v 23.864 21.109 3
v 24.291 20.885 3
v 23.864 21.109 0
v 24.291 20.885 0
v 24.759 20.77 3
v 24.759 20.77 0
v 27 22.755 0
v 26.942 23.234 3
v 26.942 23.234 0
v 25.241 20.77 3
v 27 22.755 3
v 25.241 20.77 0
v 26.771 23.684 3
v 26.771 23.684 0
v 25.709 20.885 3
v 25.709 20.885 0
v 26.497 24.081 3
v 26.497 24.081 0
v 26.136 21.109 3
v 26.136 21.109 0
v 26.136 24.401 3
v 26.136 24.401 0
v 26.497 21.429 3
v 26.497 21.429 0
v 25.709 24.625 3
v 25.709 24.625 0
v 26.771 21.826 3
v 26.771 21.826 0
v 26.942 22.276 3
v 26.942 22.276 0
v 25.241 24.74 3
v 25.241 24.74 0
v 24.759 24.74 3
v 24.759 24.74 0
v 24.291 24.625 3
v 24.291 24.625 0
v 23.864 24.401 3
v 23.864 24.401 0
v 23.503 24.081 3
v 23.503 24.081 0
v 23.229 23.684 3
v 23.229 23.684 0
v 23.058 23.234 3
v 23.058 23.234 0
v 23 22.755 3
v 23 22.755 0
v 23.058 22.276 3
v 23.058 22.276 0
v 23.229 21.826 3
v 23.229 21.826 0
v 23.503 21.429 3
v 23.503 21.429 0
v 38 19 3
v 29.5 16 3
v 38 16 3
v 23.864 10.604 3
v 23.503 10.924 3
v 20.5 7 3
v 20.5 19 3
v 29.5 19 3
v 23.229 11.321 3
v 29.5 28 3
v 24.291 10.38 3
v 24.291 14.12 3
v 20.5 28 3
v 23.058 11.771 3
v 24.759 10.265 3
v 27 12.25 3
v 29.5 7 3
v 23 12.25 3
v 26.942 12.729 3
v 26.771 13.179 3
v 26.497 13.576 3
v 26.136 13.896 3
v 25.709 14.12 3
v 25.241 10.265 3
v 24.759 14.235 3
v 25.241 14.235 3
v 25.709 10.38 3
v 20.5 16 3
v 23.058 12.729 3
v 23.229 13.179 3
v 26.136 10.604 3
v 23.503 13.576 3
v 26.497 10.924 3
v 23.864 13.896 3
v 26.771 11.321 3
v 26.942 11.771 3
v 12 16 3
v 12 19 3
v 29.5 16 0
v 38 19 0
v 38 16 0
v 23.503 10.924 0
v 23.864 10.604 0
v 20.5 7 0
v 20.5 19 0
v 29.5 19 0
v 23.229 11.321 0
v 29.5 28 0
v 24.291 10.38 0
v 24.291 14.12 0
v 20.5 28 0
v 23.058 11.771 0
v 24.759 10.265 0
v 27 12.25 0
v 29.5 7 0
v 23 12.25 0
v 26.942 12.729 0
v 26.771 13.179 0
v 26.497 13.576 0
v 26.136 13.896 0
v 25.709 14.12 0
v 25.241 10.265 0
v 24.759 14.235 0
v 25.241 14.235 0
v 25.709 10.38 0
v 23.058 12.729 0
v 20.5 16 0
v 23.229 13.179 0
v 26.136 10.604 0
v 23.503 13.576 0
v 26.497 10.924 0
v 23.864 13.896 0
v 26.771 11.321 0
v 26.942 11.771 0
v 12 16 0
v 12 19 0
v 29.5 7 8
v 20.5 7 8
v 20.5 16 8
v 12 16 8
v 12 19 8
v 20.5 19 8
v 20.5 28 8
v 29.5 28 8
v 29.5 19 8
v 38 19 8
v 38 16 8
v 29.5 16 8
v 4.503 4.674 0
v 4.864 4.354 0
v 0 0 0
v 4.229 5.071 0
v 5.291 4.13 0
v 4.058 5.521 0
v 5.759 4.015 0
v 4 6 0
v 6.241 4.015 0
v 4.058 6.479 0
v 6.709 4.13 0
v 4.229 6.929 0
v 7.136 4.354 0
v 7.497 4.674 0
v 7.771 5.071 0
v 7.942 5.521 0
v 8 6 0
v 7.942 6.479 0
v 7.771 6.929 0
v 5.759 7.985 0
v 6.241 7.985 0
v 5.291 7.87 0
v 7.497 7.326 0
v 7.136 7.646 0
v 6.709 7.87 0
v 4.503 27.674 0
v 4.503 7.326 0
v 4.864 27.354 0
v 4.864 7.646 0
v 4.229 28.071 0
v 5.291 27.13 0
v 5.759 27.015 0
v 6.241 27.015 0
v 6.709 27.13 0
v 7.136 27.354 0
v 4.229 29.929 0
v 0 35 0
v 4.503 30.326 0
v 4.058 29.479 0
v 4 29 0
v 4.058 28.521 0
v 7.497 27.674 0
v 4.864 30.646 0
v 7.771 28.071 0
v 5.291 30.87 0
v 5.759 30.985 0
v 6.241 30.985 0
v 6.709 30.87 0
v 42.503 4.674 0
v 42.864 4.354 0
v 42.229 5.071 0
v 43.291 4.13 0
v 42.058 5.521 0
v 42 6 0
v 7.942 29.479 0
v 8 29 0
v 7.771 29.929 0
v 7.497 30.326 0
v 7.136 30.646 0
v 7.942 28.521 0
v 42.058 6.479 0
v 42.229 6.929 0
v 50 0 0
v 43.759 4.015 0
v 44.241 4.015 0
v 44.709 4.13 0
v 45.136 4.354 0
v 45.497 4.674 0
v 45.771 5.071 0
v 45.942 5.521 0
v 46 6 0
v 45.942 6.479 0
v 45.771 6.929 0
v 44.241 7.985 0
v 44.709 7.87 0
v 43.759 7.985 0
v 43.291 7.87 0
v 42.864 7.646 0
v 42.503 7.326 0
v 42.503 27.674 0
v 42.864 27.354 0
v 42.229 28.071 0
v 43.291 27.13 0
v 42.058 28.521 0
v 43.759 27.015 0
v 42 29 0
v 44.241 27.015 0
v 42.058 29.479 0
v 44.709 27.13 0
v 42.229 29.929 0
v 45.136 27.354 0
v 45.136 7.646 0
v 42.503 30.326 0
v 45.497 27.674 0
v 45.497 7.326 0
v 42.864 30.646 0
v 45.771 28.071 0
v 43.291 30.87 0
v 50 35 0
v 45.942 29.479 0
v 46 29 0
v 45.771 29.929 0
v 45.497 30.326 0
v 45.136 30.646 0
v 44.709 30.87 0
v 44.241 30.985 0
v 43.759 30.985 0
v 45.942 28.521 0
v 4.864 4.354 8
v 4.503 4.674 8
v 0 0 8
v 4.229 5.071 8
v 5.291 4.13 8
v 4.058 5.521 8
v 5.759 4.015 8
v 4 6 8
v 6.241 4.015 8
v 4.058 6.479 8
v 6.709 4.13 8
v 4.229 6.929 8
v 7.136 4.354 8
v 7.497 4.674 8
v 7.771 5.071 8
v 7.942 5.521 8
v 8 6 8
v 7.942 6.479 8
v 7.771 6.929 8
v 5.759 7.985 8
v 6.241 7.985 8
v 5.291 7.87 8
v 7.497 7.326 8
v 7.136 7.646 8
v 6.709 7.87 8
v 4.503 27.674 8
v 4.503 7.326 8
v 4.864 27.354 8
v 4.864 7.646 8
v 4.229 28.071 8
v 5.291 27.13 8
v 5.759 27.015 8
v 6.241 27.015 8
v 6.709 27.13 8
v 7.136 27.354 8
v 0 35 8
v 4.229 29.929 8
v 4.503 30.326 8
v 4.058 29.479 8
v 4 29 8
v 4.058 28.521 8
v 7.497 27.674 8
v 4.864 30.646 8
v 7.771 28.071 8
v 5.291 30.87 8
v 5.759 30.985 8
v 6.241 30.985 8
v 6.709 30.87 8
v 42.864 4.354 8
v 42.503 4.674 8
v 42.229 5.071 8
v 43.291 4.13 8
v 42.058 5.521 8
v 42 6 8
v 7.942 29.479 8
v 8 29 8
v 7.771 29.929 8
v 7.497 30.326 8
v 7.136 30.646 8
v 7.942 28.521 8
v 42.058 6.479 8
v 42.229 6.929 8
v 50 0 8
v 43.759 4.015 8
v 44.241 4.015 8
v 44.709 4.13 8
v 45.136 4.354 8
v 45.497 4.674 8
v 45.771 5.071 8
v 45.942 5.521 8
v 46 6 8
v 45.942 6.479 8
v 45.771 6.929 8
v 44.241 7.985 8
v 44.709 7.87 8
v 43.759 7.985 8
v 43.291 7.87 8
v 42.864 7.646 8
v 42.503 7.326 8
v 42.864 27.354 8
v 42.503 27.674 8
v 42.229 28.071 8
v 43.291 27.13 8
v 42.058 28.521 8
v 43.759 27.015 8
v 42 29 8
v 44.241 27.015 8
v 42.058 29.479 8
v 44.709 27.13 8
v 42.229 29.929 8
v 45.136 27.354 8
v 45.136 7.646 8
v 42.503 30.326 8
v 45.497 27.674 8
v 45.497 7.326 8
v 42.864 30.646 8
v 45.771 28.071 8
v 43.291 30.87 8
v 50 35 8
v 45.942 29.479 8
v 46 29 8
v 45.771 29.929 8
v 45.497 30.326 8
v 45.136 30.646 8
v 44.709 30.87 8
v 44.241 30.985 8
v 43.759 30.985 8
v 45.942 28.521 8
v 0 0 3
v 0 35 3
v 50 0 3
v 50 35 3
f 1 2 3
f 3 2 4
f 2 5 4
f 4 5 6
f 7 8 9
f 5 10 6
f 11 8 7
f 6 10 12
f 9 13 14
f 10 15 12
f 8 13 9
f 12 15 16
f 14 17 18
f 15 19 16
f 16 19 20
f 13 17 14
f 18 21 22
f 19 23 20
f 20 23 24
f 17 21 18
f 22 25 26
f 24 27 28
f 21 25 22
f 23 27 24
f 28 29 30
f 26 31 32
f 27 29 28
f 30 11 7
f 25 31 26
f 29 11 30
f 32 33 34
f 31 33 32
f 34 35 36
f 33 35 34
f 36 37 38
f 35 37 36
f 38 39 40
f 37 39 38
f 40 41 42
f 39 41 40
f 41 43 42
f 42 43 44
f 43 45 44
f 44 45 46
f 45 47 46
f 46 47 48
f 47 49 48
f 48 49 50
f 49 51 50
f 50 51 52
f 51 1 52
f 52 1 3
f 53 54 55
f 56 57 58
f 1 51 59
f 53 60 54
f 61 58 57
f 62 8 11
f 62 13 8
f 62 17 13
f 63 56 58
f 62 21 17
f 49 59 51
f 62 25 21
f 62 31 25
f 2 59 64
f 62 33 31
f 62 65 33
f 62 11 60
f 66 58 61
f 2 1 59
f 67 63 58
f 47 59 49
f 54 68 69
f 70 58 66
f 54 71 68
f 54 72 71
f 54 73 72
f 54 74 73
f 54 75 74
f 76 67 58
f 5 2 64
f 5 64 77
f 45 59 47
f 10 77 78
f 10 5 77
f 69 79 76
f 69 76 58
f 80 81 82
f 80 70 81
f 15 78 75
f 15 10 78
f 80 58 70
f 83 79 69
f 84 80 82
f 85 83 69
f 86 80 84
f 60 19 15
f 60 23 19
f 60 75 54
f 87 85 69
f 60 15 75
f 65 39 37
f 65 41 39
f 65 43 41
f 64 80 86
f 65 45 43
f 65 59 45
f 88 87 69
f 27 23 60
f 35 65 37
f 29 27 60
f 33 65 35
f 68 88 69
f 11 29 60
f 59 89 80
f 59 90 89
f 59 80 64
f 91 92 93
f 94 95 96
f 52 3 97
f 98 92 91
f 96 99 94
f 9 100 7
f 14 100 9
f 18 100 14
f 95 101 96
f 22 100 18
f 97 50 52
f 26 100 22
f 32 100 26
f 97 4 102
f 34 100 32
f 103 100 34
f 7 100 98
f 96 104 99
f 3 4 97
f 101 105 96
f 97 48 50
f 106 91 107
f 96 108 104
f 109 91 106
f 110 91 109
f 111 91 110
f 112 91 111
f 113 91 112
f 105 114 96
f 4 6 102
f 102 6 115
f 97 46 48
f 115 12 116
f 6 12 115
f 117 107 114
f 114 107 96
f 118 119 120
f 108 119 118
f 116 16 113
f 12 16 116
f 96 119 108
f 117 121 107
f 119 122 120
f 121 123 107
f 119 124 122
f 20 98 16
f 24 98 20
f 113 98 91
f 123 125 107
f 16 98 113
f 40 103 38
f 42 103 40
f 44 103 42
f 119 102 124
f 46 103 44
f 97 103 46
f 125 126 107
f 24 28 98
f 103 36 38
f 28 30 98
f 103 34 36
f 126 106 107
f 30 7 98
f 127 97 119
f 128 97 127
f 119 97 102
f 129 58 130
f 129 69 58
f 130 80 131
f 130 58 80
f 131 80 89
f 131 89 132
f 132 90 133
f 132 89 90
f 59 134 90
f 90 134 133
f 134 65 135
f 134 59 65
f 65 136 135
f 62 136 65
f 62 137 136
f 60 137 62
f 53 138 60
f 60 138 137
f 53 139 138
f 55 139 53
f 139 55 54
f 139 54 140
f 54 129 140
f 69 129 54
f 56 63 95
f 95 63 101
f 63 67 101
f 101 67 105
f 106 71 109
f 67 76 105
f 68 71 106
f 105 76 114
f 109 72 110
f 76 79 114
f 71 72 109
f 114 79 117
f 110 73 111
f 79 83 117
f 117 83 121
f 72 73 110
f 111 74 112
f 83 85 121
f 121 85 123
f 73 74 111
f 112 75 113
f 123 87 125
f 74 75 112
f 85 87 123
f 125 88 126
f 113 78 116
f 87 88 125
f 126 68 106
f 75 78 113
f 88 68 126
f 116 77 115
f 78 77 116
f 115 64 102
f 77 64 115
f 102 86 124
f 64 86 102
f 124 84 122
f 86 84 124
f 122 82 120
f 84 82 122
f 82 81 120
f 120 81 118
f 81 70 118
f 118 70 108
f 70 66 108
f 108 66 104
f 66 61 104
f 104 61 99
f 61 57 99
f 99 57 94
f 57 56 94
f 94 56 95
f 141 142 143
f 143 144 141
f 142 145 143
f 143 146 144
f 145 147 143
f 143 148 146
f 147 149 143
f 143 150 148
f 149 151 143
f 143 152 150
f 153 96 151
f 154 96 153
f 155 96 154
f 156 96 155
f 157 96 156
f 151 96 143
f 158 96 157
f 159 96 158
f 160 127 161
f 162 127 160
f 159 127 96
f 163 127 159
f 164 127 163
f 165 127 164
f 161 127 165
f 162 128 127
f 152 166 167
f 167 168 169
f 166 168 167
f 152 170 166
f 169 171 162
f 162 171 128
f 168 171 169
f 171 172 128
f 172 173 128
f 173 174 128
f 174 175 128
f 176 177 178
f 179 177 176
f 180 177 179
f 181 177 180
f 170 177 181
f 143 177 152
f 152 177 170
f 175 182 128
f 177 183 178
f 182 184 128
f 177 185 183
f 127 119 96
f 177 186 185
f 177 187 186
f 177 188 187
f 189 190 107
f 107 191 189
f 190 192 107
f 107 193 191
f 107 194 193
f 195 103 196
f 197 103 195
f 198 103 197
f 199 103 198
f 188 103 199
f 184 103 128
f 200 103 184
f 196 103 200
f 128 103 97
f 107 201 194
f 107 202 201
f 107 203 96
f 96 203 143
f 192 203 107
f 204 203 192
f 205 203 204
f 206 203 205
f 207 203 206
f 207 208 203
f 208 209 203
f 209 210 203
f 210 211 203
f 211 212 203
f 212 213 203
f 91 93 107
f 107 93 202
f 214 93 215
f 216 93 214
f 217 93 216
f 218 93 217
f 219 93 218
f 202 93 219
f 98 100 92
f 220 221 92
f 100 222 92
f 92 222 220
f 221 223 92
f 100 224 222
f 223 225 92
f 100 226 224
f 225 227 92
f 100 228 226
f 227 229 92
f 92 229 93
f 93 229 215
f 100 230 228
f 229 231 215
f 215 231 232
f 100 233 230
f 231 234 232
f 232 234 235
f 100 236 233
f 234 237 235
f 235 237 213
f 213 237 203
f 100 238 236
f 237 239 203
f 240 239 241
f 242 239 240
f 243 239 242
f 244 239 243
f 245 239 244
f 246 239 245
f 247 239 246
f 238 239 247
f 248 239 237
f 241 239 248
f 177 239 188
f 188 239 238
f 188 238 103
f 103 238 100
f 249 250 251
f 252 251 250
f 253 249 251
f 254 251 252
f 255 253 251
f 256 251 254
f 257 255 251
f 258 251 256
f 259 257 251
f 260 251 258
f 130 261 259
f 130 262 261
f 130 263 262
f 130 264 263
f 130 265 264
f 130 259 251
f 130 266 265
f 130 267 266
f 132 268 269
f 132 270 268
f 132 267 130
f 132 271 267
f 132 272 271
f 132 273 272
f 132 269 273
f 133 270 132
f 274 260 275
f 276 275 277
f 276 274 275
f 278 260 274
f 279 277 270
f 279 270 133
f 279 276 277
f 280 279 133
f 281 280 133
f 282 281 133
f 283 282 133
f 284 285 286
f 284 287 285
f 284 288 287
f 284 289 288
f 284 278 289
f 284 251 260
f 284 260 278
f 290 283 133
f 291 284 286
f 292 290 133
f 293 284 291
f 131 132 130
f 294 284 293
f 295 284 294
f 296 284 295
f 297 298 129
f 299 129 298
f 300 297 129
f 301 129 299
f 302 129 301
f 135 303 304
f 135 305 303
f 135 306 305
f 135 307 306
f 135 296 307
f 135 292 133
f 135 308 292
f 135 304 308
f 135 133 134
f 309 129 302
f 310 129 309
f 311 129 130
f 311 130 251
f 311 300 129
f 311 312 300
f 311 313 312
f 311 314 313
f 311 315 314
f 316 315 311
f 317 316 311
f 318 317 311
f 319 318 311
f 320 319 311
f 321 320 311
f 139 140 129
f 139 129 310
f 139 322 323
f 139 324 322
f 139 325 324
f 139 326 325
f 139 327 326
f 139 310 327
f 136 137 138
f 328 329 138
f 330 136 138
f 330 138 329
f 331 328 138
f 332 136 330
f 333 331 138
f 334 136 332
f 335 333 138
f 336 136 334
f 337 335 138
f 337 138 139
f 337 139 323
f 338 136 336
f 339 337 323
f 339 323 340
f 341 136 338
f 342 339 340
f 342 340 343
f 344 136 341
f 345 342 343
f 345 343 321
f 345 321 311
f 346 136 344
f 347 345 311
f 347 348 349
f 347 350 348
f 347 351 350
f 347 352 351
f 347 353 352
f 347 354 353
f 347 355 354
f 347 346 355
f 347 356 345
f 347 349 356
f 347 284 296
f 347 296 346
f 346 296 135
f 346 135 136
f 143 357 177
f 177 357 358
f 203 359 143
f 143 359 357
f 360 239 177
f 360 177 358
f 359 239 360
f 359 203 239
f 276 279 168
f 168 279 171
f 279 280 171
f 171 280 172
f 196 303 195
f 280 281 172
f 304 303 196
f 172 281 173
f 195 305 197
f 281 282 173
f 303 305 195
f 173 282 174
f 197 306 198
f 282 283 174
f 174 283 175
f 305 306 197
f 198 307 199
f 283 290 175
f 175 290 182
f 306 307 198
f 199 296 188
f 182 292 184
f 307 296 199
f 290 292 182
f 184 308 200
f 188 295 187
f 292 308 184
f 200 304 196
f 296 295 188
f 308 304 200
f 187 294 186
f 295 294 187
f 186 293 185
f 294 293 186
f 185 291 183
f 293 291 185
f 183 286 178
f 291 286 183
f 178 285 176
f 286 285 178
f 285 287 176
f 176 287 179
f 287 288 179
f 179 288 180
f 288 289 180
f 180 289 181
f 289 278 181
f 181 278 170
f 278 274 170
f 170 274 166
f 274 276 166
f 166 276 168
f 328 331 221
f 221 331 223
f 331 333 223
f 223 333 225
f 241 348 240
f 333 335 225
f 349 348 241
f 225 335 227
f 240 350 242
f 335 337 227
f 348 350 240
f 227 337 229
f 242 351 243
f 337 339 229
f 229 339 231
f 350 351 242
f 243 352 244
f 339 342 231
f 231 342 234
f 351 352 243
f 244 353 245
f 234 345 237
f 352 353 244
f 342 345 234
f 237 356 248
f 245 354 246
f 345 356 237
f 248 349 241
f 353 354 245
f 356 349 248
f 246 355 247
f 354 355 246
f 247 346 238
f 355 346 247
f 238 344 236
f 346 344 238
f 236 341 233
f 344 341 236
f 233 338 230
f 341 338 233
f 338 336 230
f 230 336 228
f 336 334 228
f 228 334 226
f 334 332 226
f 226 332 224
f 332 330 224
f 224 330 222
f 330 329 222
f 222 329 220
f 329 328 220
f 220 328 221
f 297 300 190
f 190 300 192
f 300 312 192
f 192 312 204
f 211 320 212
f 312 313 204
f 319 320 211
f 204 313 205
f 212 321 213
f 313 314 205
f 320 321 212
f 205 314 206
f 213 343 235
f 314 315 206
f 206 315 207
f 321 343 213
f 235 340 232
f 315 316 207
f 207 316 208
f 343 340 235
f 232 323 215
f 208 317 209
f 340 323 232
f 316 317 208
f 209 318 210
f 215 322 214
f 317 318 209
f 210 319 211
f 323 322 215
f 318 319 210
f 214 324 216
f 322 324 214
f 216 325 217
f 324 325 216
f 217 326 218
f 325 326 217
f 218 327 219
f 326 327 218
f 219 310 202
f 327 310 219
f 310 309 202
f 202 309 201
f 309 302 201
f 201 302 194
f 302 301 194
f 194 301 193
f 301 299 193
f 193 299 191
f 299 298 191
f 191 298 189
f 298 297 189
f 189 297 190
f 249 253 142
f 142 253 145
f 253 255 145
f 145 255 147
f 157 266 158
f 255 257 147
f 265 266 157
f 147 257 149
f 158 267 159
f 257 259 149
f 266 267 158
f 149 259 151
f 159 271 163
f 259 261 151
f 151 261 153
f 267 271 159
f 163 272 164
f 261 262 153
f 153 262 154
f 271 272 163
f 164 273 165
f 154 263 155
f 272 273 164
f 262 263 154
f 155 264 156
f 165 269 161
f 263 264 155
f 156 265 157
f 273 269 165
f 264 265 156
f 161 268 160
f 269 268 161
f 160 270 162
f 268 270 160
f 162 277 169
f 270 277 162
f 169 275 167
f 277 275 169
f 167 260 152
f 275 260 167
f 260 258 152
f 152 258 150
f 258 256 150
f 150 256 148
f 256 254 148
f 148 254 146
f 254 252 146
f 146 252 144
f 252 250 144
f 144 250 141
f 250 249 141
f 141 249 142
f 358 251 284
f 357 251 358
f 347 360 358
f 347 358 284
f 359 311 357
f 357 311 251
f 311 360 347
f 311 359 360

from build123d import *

# Parameters (mm, degrees)
CYLINDER003_R     = 2
CYLINDER003_DEPTH = 10
CYLINDER002_R     = 2
CYLINDER002_DEPTH = 10
CYLINDER001_R     = 2
CYLINDER001_DEPTH = 10
CYLINDER_R        = 2
CYLINDER_DEPTH    = 10
BOX001_W          = 26
BOX001_H          = 3
BOX001_DEPTH      = 8
BOX002_W          = 9
BOX002_H          = 21
BOX002_DEPTH      = 8
BOX_W             = 50
BOX_H             = 35
BOX_DEPTH         = 8
CYLINDER004_R     = 2
CYLINDER004_DEPTH = 10
CYLINDER005_R     = 2
CYLINDER005_DEPTH = 10
BOX003_W          = 50
BOX003_H          = 35
BOX003_DEPTH      = 3


with BuildPart() as cylinder003:
    # Cylinder003 → Cylinder003 (new body)
    with BuildSketch(Plane(origin=(44, 29, 0), x_dir=(1, 0, 0), z_dir=(0, 0, 1))):
        Circle(CYLINDER003_R)
    extrude(amount=CYLINDER003_DEPTH)


with BuildPart() as cylinder002:
    # Cylinder002 → Cylinder002 (new body)
    with BuildSketch(Plane(origin=(6, 29, 0), x_dir=(1, 0, 0), z_dir=(0, 0, 1))):
        Circle(CYLINDER002_R)
    extrude(amount=CYLINDER002_DEPTH)


with BuildPart() as cylinder001:
    # Cylinder001 → Cylinder001 (new body)
    with BuildSketch(Plane(origin=(44, 6, 0), x_dir=(1, 0, 0), z_dir=(0, 0, 1))):
        Circle(CYLINDER001_R)
    extrude(amount=CYLINDER001_DEPTH)


with BuildPart() as cylinder:
    # Cylinder → Cylinder (new body)
    with BuildSketch(Plane(origin=(6, 6, 0), x_dir=(1, 0, 0), z_dir=(0, 0, 1))):
        Circle(CYLINDER_R)
    extrude(amount=CYLINDER_DEPTH)


with BuildPart() as cube001:
    # Box001 → Box001 (new body)
    with BuildSketch(Plane(origin=(12, 16, 0), x_dir=(1, 0, 0), z_dir=(0, 0, 1))):
        with Locations((13, 1.5)):
            Rectangle(BOX001_W, BOX001_H)
    extrude(amount=BOX001_DEPTH)


with BuildPart() as cube002:
    # Box002 → Box002 (new body)
    with BuildSketch(Plane(origin=(20.5, 7, 0), x_dir=(1, 0, 0), z_dir=(0, 0, 1))):
        with Locations((4.5, 10.5)):
            Rectangle(BOX002_W, BOX002_H)
    extrude(amount=BOX002_DEPTH)


with BuildPart() as cut003:
    # Box → Box (new body)
    with BuildSketch(Plane.XY):
        with Locations((25, 17.5)):
            Rectangle(BOX_W, BOX_H)
    extrude(amount=BOX_DEPTH)

    # Cut: cut Cube002
    add(cube002.part, mode=Mode.SUBTRACT)

    # Cut003: cut Cube001
    add(cube001.part, mode=Mode.SUBTRACT)


with BuildPart() as cylinder004:
    # Cylinder004 → Cylinder004 (new body)
    with BuildSketch(Plane(origin=(25, 22.755, 0), x_dir=(1, 0, 0), z_dir=(0, 0, 1))):
        Circle(CYLINDER004_R)
    extrude(amount=CYLINDER004_DEPTH)


with BuildPart() as cylinder005:
    # Cylinder005 → Cylinder005 (new body)
    with BuildSketch(Plane(origin=(25, 12.25, 0), x_dir=(1, 0, 0), z_dir=(0, 0, 1))):
        Circle(CYLINDER005_R)
    extrude(amount=CYLINDER005_DEPTH)


with BuildPart() as cut007:
    # Box003 → Box003 (new body)
    with BuildSketch(Plane.XY):
        with Locations((25, 17.5)):
            Rectangle(BOX003_W, BOX003_H)
    extrude(amount=BOX003_DEPTH)

    # Cut001: cut Cylinder005
    add(cylinder005.part, mode=Mode.SUBTRACT)

    # Cut002: cut Cylinder004
    add(cylinder004.part, mode=Mode.SUBTRACT)

    # Fusion: union Cut003
    add(cut003.part)

    # Cut004: cut Cylinder
    add(cylinder.part, mode=Mode.SUBTRACT)

    # Cut005: cut Cylinder001
    add(cylinder001.part, mode=Mode.SUBTRACT)

    # Cut006: cut Cylinder002
    add(cylinder002.part, mode=Mode.SUBTRACT)

    # Cut007: cut Cylinder003
    add(cylinder003.part, mode=Mode.SUBTRACT)


solid = cut007.part
